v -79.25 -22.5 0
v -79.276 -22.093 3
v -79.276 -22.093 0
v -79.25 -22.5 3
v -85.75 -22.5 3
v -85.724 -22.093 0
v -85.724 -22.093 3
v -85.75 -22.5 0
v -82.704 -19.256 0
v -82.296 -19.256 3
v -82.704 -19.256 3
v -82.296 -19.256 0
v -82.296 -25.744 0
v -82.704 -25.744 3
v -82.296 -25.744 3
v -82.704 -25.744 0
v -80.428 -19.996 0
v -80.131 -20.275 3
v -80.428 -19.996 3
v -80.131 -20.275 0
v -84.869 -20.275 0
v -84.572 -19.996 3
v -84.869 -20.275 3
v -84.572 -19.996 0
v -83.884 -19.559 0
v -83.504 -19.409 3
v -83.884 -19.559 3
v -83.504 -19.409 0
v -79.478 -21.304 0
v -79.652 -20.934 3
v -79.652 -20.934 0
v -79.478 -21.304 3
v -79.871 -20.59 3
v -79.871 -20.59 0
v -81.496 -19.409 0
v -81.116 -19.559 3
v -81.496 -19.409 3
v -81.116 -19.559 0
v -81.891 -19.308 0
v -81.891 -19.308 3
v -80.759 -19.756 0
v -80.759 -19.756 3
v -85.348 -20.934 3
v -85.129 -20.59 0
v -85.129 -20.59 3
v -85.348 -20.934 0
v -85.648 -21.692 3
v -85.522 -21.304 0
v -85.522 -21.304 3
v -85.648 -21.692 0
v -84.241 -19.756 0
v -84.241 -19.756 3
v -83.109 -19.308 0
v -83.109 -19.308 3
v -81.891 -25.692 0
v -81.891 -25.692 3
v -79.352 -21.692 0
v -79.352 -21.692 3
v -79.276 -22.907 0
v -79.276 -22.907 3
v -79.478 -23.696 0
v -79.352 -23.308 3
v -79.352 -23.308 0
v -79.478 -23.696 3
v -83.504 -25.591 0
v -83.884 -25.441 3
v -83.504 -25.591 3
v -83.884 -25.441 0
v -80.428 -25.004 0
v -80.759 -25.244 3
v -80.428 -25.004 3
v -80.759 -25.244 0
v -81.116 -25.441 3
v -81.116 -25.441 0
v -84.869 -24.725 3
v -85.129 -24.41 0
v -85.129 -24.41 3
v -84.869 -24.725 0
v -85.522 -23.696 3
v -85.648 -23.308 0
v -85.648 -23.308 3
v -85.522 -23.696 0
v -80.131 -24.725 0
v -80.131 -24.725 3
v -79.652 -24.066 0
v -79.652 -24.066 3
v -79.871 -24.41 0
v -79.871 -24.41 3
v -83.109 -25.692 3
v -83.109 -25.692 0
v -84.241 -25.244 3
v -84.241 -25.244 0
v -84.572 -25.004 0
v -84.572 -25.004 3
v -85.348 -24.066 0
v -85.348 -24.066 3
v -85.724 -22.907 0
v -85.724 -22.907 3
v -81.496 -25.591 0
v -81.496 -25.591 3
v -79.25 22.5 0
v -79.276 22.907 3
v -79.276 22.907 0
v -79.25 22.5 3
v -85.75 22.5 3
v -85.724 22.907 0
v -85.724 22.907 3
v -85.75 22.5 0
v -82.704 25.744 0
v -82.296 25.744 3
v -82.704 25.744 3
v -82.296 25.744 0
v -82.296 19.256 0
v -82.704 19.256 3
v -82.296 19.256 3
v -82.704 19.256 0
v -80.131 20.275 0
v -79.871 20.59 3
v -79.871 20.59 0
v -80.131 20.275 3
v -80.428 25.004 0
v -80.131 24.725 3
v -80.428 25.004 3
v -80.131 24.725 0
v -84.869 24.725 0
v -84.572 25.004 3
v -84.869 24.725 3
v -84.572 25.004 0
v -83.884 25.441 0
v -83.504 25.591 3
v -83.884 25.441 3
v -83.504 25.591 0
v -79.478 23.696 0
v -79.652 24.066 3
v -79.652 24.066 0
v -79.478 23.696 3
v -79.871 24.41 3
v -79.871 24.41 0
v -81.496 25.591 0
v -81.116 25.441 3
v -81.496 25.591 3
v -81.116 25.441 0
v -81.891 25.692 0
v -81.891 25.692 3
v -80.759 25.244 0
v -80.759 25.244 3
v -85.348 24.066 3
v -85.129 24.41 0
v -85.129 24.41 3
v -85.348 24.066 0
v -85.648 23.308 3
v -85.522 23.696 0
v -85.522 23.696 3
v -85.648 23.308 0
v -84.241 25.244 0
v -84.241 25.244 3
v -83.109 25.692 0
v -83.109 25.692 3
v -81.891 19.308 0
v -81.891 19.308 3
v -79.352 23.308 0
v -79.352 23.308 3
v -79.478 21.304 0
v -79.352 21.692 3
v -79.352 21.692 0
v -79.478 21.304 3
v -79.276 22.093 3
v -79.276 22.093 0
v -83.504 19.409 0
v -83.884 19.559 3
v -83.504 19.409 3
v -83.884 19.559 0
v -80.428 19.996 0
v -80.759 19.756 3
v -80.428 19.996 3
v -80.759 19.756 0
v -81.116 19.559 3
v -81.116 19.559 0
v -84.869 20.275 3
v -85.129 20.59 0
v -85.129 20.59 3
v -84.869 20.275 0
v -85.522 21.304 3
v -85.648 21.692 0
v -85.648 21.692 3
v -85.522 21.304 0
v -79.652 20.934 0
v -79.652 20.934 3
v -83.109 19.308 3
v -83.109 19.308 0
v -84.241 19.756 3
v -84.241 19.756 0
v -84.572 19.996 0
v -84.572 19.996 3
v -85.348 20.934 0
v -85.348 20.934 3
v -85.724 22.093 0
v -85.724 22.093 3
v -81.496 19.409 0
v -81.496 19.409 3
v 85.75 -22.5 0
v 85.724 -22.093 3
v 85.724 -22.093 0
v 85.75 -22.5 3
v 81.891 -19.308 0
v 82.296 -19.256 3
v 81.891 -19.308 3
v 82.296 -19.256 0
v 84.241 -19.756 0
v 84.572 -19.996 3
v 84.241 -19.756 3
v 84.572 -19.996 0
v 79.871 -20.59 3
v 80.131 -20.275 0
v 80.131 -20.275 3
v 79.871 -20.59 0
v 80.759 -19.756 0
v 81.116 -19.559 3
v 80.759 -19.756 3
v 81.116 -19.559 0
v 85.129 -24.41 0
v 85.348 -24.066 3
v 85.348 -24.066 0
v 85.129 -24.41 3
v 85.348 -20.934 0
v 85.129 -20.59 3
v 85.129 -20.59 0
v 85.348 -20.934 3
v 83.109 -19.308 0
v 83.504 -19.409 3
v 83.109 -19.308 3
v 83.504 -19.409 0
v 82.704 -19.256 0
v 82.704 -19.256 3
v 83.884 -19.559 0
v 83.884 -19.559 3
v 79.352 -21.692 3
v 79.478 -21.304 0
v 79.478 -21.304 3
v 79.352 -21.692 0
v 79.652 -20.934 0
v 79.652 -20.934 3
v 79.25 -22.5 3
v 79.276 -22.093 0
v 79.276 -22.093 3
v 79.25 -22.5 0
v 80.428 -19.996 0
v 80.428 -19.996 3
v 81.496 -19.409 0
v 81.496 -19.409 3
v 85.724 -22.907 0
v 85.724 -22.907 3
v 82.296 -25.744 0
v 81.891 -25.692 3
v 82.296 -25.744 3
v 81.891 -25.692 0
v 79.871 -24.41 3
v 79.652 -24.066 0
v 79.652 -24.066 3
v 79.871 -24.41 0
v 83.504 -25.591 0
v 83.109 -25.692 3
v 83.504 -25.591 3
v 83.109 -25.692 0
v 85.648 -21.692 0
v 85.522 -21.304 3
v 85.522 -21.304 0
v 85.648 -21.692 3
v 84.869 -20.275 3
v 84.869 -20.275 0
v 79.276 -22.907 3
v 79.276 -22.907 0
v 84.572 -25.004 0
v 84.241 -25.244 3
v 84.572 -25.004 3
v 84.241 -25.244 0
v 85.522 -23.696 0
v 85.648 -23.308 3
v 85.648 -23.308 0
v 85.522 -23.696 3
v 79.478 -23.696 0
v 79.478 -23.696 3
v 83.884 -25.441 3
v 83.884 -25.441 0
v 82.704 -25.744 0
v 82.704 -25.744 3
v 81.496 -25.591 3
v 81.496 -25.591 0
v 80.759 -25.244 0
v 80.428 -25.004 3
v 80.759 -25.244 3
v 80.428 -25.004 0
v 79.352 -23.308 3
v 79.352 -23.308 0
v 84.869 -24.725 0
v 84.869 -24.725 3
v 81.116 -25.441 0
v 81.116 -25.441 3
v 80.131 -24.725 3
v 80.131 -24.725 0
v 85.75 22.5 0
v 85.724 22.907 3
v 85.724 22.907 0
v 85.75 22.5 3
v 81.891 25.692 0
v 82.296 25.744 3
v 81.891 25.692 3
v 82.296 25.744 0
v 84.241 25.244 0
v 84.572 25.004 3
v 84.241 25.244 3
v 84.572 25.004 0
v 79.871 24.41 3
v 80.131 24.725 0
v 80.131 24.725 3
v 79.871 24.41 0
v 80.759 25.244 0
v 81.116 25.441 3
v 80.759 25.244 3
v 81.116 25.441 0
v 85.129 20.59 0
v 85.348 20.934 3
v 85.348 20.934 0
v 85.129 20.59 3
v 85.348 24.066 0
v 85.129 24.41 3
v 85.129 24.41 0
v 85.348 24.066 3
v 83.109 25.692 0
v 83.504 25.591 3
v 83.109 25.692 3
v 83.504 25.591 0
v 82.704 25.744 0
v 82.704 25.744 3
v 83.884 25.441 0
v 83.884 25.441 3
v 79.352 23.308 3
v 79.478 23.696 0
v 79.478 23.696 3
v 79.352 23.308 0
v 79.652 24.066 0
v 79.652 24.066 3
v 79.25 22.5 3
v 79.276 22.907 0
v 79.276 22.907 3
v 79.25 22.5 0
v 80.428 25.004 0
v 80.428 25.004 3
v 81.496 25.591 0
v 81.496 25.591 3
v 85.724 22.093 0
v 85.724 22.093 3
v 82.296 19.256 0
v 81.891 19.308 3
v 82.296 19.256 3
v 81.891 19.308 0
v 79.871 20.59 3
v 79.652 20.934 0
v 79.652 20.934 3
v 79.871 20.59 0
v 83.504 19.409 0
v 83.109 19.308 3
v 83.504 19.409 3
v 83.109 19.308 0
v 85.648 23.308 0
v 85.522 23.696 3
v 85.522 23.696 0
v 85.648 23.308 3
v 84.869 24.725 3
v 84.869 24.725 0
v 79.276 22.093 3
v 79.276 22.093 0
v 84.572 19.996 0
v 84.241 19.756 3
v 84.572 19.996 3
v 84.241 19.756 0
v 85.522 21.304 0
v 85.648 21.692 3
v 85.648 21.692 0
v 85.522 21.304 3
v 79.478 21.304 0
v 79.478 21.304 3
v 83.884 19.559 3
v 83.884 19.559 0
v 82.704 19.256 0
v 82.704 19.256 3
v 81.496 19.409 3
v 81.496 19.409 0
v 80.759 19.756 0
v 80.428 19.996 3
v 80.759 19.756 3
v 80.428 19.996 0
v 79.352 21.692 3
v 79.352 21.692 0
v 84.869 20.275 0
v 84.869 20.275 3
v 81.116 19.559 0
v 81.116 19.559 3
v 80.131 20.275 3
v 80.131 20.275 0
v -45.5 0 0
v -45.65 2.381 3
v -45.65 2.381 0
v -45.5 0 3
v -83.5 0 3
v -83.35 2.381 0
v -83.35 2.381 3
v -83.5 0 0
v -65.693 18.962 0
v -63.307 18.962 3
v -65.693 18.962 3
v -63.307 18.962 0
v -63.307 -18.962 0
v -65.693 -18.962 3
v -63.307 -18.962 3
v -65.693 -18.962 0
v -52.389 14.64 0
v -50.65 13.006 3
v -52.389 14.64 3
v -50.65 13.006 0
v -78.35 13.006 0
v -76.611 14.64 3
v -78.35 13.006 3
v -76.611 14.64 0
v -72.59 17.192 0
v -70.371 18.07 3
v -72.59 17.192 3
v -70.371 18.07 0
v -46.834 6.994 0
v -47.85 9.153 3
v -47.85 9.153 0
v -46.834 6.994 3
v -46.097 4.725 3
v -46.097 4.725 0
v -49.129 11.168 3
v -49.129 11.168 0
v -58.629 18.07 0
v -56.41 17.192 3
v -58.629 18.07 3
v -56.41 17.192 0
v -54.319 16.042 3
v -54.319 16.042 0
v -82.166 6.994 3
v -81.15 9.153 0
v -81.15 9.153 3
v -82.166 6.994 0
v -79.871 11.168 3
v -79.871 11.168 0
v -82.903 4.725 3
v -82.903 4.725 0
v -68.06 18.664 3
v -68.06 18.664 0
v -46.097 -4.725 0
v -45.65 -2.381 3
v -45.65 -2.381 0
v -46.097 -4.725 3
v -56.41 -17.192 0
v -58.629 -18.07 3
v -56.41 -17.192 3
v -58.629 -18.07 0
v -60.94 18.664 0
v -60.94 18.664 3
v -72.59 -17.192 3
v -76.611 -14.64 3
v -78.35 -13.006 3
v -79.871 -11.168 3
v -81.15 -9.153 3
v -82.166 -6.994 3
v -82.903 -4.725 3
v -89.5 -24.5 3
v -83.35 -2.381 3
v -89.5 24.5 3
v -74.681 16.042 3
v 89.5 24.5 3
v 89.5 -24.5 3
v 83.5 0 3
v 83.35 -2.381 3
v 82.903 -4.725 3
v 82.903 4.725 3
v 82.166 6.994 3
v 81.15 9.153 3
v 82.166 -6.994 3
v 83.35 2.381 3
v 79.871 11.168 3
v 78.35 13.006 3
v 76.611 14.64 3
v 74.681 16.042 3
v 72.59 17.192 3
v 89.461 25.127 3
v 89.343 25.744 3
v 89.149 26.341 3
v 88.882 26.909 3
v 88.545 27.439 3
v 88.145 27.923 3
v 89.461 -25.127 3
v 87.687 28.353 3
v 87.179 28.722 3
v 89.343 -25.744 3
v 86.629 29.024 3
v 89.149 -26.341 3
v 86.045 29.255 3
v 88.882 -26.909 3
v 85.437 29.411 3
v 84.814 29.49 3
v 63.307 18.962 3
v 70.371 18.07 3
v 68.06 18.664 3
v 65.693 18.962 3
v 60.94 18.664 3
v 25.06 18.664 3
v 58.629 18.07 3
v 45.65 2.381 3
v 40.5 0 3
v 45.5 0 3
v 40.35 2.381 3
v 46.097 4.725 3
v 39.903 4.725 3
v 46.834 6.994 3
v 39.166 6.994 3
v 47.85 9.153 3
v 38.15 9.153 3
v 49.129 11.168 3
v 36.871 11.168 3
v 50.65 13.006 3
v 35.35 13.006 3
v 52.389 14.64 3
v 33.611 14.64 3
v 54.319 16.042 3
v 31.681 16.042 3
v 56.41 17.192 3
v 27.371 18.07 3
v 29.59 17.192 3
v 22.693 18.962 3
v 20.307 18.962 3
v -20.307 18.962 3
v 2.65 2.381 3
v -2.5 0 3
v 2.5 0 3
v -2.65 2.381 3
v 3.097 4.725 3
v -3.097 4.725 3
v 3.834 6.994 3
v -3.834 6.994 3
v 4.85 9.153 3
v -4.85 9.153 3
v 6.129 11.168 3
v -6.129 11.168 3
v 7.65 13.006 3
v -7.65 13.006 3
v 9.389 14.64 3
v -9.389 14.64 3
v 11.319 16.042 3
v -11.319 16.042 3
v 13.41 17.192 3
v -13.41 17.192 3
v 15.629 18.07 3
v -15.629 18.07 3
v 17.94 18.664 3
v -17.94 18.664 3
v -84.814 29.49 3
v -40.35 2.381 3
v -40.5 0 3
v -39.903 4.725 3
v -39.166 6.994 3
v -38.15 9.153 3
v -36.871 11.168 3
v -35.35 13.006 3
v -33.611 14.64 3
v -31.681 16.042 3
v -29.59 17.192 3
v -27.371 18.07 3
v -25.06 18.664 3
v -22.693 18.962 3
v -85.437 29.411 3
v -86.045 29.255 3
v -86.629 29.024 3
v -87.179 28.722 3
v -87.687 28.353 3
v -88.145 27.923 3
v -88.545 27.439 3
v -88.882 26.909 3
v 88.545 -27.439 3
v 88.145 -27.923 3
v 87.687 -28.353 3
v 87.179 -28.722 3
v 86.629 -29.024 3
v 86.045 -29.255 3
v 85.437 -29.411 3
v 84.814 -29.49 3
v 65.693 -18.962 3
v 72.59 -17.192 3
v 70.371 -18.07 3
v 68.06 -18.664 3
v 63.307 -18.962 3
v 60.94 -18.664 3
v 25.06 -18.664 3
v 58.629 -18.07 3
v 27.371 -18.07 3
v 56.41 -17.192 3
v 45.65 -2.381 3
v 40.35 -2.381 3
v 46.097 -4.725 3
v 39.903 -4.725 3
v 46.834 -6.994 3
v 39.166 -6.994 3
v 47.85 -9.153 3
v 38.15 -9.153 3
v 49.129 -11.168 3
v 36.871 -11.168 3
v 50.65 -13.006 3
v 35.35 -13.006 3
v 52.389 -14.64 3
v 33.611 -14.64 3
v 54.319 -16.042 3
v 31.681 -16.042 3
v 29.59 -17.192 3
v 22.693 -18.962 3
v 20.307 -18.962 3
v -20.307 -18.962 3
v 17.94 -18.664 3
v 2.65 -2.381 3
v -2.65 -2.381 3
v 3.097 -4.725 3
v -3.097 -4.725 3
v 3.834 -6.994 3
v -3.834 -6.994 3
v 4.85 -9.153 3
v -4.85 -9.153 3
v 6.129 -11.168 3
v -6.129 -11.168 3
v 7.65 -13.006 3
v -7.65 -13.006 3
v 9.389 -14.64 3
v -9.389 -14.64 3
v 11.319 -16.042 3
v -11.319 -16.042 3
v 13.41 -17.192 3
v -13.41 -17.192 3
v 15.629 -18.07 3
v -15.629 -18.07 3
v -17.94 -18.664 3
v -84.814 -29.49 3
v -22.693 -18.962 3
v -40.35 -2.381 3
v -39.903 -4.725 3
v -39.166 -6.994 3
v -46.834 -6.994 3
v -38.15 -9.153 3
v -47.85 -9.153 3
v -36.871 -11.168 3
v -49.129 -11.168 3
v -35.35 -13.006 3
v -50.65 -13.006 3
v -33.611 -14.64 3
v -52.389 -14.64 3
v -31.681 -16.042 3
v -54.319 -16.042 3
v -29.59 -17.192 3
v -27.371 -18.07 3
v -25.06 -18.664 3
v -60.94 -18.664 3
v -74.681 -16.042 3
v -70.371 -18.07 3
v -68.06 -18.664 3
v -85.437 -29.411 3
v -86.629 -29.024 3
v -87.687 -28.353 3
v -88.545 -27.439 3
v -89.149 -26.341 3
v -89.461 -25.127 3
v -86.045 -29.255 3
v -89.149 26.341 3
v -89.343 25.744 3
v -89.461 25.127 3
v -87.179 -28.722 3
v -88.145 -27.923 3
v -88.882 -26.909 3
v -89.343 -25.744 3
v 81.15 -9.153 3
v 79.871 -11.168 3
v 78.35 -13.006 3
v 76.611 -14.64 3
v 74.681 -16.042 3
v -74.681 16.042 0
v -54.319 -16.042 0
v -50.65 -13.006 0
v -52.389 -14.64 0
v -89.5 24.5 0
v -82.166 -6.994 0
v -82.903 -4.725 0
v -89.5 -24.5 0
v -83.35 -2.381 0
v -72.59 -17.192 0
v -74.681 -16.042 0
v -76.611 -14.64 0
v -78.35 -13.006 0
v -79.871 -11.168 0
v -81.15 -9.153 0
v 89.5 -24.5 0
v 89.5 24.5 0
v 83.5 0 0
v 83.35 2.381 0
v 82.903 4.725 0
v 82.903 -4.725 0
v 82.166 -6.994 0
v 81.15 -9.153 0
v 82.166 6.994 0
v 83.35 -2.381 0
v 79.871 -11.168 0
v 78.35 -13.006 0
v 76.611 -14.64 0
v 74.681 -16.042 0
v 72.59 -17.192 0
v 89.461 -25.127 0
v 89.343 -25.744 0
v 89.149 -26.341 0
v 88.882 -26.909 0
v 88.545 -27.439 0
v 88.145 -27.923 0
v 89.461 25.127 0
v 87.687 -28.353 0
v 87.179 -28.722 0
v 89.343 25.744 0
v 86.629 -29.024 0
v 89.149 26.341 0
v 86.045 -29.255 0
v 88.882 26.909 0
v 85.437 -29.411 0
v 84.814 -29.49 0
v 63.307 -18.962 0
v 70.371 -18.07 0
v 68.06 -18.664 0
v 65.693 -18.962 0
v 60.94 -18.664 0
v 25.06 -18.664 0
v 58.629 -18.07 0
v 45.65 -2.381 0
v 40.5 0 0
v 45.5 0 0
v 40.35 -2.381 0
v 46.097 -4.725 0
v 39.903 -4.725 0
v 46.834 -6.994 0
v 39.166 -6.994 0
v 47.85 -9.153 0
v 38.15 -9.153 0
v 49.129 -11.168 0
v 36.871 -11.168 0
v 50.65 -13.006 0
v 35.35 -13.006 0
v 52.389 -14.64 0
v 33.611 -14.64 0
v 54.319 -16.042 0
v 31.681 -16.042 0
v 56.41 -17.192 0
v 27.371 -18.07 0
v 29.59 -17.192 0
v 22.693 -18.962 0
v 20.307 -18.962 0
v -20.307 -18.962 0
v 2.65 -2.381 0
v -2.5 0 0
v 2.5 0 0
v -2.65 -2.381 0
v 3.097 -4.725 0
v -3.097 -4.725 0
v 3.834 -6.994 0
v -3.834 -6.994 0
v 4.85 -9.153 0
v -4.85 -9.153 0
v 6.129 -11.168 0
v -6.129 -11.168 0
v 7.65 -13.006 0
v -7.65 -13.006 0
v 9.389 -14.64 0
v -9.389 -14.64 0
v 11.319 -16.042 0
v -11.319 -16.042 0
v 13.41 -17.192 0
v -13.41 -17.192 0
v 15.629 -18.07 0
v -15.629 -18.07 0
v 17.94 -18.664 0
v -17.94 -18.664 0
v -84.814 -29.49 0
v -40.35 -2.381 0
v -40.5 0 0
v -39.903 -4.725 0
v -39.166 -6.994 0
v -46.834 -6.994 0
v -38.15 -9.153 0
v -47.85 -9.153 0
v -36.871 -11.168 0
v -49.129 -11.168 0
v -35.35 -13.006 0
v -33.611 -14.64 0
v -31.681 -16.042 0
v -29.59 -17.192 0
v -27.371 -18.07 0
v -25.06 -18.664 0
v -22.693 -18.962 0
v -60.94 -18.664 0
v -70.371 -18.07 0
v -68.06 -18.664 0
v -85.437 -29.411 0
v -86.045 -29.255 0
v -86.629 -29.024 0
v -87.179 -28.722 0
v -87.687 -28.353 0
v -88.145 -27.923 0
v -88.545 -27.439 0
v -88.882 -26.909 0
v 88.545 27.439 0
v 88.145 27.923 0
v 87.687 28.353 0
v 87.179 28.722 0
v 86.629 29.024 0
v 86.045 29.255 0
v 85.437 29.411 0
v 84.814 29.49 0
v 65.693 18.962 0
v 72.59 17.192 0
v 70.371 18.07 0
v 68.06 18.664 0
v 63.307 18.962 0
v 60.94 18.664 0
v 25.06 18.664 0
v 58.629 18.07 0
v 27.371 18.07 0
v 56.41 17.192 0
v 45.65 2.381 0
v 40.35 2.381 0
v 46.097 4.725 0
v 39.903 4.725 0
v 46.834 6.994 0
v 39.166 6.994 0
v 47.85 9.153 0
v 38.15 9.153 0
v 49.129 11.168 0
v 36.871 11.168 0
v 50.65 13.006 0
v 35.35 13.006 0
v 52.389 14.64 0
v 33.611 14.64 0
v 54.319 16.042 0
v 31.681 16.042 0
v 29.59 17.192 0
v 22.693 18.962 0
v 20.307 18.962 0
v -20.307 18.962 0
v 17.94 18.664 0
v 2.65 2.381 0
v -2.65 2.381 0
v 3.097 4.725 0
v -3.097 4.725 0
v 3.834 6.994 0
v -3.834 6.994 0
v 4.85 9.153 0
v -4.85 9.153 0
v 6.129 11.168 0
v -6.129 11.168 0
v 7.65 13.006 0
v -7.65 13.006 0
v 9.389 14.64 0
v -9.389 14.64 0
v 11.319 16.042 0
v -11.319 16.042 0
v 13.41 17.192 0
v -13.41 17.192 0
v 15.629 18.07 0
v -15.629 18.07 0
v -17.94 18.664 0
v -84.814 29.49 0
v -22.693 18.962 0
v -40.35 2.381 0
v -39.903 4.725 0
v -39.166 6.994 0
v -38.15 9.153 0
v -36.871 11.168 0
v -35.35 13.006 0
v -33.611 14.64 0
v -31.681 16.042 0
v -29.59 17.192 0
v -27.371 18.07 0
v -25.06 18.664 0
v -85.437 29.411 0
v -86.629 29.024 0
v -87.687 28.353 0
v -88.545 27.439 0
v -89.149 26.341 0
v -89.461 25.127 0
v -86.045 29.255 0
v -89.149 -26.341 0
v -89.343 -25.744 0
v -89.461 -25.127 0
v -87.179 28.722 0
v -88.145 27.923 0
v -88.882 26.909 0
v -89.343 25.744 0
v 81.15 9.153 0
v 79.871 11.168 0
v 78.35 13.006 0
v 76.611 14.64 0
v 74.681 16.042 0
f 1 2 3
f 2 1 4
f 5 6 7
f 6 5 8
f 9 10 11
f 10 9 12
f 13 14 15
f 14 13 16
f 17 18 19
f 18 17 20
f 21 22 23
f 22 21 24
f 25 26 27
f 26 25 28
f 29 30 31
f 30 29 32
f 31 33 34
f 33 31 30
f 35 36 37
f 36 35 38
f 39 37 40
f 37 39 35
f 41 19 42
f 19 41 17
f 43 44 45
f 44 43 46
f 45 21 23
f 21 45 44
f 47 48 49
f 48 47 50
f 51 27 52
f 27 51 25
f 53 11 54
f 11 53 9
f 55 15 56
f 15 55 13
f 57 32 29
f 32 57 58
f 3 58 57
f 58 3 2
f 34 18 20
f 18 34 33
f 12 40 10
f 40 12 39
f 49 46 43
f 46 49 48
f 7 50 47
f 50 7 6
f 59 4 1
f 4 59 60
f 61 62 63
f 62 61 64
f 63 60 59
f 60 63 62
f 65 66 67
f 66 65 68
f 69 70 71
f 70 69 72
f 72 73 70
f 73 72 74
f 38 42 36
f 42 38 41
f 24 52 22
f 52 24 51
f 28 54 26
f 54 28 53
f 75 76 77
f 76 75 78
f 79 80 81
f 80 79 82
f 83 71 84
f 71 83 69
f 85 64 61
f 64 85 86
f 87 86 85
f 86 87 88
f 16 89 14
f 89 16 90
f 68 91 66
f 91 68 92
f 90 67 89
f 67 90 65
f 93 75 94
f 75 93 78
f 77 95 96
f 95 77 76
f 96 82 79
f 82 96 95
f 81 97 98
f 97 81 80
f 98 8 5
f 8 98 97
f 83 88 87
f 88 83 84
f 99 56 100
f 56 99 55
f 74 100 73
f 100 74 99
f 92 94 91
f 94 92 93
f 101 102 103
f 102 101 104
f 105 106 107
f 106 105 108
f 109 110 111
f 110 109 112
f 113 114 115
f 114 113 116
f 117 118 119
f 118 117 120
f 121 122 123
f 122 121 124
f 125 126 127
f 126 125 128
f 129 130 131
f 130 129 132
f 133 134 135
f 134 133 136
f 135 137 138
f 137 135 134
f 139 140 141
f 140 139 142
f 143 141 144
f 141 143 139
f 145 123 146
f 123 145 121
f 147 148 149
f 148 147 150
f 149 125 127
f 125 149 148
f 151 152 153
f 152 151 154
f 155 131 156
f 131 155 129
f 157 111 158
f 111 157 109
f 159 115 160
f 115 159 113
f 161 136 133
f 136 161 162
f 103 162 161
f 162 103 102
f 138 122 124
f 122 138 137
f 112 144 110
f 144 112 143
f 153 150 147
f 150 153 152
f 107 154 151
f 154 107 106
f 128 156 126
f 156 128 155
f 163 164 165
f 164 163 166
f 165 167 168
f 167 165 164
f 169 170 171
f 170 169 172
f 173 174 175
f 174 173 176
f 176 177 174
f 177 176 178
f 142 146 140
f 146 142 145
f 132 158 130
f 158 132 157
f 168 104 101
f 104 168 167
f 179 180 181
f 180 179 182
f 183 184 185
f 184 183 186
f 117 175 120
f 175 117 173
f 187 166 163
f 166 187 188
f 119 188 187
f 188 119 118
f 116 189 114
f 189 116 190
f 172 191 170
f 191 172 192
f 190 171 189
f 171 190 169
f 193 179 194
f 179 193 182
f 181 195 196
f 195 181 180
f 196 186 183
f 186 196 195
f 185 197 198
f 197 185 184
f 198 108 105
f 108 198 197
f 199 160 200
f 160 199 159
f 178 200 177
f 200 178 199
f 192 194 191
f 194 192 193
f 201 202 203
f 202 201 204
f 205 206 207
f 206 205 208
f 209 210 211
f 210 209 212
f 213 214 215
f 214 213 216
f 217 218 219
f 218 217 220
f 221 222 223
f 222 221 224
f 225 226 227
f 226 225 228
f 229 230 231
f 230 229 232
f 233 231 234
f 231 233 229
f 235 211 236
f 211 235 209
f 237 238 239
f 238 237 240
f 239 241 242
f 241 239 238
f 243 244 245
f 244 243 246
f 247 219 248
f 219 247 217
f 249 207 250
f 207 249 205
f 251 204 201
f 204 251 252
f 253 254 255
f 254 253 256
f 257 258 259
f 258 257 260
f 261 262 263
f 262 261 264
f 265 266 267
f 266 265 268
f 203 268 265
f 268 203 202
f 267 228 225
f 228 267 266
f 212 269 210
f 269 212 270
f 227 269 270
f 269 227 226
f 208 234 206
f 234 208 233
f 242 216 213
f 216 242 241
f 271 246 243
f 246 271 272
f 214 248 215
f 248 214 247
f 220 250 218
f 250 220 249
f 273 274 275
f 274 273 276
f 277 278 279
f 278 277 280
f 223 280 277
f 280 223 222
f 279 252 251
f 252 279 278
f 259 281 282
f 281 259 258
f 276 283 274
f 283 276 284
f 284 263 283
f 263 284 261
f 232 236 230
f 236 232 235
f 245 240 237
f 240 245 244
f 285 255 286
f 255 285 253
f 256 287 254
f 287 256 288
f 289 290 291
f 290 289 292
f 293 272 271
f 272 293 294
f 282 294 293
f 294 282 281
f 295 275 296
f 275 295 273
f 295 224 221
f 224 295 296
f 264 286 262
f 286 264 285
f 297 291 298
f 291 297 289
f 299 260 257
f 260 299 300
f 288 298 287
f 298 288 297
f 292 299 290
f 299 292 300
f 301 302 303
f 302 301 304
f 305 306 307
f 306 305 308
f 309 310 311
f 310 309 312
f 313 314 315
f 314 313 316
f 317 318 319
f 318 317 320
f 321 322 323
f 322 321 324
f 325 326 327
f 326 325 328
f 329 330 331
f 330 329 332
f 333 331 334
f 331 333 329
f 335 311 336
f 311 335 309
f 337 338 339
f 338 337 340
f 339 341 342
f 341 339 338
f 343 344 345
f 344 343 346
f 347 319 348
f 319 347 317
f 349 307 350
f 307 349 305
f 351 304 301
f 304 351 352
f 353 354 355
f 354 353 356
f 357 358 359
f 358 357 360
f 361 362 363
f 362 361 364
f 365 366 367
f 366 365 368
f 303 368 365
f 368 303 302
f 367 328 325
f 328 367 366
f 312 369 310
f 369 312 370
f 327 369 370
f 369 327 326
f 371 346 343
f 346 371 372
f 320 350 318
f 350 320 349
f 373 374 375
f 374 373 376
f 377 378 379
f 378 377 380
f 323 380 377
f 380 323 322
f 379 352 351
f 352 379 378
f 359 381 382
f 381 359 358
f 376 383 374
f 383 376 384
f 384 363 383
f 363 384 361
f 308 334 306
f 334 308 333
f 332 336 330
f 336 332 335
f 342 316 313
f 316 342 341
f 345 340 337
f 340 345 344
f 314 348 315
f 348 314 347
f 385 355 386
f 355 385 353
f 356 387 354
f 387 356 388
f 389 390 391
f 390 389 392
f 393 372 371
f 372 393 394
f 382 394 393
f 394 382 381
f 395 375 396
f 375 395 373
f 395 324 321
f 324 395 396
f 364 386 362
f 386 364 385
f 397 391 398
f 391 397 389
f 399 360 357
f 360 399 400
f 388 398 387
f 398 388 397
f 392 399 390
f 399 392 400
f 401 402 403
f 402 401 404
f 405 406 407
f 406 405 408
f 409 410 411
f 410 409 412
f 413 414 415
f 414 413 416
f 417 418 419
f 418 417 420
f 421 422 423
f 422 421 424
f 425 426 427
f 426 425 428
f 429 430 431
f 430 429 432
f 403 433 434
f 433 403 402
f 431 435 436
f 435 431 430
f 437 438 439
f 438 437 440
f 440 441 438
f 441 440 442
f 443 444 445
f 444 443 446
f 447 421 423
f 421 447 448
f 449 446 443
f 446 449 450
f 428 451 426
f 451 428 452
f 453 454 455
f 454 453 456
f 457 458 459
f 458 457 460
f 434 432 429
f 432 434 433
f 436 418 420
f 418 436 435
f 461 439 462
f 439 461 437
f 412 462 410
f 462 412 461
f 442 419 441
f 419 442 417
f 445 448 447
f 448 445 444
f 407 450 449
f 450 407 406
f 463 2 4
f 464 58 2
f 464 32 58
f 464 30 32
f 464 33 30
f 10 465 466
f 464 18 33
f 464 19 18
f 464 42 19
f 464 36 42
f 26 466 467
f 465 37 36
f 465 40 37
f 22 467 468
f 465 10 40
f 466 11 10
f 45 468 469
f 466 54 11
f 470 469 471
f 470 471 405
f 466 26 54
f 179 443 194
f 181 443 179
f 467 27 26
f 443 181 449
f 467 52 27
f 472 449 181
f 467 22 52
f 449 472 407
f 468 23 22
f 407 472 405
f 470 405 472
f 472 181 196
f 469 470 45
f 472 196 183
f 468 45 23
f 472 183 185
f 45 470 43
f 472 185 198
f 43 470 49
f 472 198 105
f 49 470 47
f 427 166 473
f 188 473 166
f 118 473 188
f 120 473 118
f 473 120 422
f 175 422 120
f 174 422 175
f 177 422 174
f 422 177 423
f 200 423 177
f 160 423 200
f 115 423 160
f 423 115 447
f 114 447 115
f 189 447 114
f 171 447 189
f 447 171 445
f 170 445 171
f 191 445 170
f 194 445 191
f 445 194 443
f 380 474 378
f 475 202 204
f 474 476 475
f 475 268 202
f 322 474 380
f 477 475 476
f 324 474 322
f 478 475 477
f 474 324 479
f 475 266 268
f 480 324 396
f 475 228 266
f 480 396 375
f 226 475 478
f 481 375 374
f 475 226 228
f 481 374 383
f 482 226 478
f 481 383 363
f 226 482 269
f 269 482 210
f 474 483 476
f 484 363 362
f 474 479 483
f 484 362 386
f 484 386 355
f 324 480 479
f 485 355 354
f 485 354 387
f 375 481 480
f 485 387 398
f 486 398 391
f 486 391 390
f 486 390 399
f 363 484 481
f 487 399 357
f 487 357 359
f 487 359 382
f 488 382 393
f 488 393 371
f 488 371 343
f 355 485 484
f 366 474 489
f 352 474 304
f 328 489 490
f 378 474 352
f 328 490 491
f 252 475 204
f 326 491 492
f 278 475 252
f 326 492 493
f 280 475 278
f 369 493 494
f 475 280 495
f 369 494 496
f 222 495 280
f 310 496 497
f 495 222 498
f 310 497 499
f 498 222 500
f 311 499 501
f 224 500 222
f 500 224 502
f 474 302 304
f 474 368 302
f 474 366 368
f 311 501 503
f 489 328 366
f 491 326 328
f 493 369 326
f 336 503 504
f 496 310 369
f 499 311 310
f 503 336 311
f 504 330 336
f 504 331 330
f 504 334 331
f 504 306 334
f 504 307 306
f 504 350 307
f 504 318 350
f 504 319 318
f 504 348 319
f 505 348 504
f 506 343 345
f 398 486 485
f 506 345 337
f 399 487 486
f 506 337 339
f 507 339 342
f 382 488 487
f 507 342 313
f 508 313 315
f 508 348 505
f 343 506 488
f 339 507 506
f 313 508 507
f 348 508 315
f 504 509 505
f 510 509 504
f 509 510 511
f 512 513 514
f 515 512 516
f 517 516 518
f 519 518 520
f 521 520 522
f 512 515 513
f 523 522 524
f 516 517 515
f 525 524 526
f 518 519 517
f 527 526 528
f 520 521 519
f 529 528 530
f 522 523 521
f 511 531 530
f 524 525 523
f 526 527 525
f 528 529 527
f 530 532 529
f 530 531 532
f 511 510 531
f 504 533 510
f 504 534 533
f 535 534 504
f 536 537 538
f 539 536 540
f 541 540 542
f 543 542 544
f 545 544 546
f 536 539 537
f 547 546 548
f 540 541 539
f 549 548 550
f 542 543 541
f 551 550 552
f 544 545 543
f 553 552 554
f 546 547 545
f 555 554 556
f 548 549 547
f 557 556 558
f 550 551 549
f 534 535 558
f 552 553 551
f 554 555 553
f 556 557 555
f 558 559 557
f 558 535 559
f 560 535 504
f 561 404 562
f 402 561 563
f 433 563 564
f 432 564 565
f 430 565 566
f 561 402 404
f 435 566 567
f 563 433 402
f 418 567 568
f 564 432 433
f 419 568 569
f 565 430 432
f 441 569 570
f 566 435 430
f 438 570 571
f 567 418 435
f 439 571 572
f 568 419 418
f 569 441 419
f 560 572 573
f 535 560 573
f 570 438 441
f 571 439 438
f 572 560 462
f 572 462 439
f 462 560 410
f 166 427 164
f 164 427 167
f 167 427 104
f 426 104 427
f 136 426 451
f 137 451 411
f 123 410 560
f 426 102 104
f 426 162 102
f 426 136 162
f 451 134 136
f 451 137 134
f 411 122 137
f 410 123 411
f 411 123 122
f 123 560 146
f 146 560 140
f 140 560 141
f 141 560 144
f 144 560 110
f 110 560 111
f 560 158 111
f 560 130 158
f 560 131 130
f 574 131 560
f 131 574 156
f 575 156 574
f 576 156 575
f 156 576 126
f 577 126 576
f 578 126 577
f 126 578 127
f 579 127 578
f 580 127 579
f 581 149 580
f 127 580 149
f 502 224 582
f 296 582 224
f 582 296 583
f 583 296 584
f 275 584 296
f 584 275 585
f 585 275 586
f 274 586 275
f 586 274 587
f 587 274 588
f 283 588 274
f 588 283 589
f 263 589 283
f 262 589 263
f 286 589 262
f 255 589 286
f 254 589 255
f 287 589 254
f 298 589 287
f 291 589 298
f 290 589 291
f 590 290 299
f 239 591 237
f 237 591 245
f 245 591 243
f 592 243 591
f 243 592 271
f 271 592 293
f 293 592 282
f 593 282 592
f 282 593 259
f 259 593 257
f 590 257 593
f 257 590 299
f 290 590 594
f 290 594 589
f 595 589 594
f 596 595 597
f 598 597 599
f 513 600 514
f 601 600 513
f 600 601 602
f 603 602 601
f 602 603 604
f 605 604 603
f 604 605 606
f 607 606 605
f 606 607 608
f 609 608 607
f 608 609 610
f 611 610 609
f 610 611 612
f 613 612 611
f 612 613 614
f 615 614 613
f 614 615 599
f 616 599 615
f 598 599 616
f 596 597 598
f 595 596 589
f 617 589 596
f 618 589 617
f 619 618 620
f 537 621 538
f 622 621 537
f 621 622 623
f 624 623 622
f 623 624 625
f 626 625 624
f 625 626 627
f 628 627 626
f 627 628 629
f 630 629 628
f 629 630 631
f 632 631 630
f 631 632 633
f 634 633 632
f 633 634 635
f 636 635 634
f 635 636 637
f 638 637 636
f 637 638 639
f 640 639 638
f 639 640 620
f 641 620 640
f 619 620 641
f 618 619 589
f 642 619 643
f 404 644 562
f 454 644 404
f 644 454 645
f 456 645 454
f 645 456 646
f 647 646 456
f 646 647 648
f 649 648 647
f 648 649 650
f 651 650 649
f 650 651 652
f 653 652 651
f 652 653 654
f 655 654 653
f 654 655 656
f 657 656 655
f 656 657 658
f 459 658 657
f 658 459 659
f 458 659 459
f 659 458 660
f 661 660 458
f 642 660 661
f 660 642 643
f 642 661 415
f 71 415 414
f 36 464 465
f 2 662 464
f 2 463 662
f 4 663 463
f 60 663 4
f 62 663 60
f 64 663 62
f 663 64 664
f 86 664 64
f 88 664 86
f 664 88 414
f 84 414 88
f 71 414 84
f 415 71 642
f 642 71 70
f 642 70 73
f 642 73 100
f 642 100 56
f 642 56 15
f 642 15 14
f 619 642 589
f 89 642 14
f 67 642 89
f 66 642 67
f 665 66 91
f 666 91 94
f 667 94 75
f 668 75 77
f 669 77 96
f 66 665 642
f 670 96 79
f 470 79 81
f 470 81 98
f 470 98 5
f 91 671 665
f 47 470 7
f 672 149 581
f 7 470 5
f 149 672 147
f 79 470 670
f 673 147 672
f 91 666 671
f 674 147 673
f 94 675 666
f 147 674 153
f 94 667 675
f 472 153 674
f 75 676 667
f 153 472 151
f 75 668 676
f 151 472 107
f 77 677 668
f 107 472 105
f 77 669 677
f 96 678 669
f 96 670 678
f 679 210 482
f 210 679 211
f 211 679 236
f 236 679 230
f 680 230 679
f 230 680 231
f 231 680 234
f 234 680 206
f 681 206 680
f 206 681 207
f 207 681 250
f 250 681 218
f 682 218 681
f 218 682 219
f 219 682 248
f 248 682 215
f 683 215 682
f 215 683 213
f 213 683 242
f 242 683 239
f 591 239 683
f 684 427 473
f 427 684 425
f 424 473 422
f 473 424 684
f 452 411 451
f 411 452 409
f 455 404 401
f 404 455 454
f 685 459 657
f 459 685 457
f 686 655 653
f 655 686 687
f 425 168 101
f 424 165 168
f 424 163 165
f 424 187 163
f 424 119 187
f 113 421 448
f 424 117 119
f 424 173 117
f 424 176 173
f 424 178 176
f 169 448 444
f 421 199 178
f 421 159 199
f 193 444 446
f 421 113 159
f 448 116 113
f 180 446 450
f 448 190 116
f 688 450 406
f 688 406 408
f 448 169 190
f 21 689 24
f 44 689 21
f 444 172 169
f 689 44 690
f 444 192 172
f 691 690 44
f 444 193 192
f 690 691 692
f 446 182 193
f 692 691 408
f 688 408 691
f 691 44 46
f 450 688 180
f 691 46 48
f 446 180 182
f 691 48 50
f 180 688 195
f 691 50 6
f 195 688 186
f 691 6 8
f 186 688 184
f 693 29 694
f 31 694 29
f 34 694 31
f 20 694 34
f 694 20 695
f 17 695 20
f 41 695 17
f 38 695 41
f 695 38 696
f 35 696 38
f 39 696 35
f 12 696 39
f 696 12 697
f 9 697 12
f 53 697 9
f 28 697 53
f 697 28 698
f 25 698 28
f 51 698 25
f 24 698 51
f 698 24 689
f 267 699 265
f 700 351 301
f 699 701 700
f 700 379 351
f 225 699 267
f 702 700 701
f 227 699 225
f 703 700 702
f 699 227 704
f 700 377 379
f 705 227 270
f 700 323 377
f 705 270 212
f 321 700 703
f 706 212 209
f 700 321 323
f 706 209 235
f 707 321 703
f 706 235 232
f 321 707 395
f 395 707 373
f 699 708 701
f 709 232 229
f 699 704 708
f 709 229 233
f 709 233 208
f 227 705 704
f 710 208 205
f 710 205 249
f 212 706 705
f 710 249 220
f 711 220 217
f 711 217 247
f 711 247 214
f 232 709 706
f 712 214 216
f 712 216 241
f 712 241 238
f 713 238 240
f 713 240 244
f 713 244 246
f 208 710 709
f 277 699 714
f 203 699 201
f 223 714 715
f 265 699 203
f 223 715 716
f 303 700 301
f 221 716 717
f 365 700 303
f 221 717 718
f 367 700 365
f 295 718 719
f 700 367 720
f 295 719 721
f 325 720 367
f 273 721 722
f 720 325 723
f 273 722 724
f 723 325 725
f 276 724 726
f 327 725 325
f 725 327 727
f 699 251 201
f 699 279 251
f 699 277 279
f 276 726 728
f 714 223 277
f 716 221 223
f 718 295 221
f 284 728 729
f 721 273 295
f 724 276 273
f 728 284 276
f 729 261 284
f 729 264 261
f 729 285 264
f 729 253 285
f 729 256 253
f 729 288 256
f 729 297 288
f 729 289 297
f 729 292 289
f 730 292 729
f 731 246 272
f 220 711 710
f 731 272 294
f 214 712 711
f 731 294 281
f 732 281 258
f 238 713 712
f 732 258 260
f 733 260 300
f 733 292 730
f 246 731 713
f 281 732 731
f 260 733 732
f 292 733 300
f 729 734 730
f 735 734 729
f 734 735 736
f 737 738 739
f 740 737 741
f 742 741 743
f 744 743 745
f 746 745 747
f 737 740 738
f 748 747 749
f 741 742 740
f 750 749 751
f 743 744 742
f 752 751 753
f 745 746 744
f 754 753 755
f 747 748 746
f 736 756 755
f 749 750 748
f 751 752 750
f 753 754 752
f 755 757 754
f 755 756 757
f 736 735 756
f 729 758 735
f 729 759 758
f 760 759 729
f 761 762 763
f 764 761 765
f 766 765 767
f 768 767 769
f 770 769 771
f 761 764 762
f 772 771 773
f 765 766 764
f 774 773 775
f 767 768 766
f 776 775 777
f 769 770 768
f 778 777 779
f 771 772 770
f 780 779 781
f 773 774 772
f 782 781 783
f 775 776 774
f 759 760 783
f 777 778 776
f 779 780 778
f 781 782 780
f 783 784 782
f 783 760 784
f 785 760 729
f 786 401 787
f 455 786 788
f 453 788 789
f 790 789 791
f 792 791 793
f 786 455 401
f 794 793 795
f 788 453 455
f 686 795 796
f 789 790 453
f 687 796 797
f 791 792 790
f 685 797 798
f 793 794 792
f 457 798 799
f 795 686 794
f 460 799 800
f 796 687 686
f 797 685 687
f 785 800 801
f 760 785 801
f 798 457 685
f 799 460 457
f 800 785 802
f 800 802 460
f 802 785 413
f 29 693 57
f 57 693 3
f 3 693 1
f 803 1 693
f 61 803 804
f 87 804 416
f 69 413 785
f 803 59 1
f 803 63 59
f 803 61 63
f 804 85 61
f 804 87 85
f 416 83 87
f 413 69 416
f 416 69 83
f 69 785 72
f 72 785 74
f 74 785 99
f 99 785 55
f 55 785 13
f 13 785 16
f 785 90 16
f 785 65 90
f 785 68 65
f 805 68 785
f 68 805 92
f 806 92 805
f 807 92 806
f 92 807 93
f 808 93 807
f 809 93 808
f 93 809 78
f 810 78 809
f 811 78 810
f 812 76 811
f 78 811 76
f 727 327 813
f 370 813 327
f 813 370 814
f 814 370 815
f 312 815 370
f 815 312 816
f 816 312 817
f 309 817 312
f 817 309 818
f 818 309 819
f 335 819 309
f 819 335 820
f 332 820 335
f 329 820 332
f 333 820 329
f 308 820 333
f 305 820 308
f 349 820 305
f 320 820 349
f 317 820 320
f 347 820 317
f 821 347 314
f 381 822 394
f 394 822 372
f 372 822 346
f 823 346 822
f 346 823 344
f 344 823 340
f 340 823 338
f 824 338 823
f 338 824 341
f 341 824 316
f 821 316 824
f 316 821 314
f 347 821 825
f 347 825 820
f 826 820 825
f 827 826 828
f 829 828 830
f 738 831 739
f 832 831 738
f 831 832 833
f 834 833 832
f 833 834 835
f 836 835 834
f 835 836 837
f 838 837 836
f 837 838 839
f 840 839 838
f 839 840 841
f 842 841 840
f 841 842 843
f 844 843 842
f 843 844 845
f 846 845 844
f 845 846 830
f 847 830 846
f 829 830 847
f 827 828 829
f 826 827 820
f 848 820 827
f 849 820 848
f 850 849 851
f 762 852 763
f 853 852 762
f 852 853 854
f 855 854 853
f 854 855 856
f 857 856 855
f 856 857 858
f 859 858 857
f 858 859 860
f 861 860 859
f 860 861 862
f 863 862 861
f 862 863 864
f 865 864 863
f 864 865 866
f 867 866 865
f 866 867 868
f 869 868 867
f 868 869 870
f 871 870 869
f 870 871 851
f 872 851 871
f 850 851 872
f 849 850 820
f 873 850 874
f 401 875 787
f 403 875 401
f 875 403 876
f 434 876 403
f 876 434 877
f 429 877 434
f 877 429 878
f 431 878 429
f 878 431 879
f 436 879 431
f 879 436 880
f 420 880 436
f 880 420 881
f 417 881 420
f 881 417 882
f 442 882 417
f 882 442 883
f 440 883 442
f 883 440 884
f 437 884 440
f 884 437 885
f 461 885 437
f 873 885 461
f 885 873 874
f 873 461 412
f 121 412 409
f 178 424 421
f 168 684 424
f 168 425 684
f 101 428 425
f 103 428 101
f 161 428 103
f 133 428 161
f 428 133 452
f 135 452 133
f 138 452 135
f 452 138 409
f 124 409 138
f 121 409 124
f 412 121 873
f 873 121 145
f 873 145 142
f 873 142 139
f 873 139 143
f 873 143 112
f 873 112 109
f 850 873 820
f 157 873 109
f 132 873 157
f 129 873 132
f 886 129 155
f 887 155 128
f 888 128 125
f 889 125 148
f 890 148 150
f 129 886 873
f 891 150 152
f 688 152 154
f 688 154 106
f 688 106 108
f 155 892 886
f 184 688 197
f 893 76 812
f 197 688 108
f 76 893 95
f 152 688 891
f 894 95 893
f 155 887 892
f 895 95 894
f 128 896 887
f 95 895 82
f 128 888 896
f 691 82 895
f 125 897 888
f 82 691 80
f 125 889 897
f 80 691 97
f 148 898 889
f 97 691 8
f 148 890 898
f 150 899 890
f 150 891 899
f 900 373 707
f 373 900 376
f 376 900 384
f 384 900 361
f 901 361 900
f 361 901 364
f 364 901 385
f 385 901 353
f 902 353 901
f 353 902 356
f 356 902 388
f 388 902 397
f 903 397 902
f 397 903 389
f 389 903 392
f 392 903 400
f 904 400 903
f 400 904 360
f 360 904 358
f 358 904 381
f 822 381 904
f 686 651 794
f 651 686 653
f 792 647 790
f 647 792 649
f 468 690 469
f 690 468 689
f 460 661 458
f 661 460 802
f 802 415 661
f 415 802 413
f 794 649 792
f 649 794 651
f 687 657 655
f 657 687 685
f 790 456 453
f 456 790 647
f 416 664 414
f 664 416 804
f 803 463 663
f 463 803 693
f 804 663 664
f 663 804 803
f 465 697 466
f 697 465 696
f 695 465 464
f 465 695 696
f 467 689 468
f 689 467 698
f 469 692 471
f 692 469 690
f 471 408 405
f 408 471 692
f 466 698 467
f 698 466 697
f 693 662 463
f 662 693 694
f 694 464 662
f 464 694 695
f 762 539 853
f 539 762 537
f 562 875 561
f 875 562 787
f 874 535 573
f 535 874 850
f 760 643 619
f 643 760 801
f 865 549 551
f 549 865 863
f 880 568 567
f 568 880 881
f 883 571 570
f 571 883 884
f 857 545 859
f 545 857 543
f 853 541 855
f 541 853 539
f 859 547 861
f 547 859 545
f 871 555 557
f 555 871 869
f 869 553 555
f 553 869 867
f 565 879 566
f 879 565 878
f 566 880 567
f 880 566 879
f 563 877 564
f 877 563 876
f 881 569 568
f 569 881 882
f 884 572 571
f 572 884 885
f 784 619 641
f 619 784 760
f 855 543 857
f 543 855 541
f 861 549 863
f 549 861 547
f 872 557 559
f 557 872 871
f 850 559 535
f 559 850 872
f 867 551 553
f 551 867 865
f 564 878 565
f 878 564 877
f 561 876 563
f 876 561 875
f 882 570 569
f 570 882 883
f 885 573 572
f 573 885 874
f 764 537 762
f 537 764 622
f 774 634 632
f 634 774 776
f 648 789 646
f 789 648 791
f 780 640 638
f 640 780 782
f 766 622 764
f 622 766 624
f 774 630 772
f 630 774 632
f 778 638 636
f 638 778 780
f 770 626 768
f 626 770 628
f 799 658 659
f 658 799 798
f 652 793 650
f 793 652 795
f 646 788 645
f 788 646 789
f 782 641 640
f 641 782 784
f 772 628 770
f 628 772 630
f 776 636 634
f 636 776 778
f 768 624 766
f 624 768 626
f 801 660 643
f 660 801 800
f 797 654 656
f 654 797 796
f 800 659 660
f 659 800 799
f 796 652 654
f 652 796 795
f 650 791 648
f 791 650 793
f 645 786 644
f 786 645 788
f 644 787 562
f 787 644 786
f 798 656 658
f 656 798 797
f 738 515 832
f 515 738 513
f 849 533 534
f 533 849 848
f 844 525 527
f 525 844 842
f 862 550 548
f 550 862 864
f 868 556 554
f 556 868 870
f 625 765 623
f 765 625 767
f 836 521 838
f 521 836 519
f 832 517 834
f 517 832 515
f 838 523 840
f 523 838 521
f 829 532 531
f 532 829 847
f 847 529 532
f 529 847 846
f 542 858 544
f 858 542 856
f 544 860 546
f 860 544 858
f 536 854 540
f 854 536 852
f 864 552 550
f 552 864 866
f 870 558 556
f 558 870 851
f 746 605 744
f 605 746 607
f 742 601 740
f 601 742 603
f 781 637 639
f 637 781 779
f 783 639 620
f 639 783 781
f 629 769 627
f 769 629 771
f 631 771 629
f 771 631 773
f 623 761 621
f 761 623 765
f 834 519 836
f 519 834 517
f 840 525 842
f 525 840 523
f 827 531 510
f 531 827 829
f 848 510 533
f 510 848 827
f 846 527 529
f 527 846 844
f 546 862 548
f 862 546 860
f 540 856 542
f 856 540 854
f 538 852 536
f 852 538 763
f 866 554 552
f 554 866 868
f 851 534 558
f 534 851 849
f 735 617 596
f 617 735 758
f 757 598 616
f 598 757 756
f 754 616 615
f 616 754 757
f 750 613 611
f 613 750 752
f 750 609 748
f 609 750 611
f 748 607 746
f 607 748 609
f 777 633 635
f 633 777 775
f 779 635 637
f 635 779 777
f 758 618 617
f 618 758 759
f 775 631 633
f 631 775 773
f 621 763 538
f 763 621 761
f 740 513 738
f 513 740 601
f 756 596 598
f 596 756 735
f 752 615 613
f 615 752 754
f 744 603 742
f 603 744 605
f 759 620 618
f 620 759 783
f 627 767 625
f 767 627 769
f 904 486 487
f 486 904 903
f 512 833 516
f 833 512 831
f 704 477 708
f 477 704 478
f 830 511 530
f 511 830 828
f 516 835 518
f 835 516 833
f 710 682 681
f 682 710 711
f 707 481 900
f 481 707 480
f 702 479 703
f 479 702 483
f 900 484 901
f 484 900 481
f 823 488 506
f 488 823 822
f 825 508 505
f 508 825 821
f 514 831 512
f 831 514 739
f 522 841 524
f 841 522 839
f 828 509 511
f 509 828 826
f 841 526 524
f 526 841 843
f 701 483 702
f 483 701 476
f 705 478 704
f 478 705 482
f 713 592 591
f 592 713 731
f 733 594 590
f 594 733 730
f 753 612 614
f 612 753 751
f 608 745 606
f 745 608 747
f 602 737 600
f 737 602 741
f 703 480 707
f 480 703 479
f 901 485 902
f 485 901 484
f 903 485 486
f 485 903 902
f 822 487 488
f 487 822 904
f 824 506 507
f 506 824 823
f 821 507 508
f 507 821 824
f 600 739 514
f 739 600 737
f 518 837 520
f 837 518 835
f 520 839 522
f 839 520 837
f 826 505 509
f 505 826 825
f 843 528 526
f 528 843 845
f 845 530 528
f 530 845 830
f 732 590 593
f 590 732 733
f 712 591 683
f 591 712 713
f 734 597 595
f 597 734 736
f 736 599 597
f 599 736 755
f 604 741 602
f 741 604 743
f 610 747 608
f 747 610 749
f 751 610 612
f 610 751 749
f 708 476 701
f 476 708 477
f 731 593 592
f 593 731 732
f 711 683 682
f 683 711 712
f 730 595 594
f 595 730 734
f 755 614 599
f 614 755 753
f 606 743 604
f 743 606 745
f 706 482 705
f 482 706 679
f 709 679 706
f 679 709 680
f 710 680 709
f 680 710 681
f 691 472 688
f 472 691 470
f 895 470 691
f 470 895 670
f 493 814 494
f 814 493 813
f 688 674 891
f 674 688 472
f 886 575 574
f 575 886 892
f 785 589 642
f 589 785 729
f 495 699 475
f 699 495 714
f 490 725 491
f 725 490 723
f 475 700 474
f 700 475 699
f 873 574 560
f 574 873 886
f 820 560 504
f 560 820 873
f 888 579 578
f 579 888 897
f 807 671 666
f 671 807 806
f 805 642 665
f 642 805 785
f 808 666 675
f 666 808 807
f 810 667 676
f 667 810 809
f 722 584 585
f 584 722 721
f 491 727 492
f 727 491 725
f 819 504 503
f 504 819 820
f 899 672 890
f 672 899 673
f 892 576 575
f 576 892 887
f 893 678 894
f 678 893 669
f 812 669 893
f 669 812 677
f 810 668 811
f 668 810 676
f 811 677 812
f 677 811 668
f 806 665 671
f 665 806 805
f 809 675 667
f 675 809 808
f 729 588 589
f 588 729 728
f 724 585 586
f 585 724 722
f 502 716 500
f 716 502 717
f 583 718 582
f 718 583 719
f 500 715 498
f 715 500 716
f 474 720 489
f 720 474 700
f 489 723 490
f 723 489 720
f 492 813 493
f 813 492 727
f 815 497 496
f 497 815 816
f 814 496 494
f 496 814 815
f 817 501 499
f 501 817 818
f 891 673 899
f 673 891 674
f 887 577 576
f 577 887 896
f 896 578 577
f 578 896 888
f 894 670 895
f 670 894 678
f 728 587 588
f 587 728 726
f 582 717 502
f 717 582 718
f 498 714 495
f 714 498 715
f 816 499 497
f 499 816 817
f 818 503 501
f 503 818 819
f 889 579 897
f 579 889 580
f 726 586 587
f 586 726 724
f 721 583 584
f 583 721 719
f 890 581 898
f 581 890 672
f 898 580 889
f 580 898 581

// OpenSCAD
$fn = 50;


difference() {
	union() {
		hull() {
			translate(v = [-84.5000000000, 24.5000000000, 0]) {
				cylinder(h = 3, r = 5);
			}
			translate(v = [84.5000000000, 24.5000000000, 0]) {
				cylinder(h = 3, r = 5);
			}
			translate(v = [-84.5000000000, -24.5000000000, 0]) {
				cylinder(h = 3, r = 5);
			}
			translate(v = [84.5000000000, -24.5000000000, 0]) {
				cylinder(h = 3, r = 5);
			}
		}
	}
	union() {
		#translate(v = [-82.5000000000, -22.5000000000, -100.0000000000]) {
			cylinder(h = 200, r = 3.2500000000);
		}
		#translate(v = [-82.5000000000, 22.5000000000, -100.0000000000]) {
			cylinder(h = 200, r = 3.2500000000);
		}
		#translate(v = [82.5000000000, -22.5000000000, -100.0000000000]) {
			cylinder(h = 200, r = 3.2500000000);
		}
		#translate(v = [82.5000000000, 22.5000000000, -100.0000000000]) {
			cylinder(h = 200, r = 3.2500000000);
		}
		#translate(v = [-64.5000000000, 0, 0]) {
			cylinder(h = 3, r = 19.0000000000);
		}
		#translate(v = [-21.5000000000, 0, 0]) {
			cylinder(h = 3, r = 19.0000000000);
		}
		#translate(v = [21.5000000000, 0, 0]) {
			cylinder(h = 3, r = 19.0000000000);
		}
		#translate(v = [64.5000000000, 0, 0]) {
			cylinder(h = 3, r = 19.0000000000);
		}
	}
}
